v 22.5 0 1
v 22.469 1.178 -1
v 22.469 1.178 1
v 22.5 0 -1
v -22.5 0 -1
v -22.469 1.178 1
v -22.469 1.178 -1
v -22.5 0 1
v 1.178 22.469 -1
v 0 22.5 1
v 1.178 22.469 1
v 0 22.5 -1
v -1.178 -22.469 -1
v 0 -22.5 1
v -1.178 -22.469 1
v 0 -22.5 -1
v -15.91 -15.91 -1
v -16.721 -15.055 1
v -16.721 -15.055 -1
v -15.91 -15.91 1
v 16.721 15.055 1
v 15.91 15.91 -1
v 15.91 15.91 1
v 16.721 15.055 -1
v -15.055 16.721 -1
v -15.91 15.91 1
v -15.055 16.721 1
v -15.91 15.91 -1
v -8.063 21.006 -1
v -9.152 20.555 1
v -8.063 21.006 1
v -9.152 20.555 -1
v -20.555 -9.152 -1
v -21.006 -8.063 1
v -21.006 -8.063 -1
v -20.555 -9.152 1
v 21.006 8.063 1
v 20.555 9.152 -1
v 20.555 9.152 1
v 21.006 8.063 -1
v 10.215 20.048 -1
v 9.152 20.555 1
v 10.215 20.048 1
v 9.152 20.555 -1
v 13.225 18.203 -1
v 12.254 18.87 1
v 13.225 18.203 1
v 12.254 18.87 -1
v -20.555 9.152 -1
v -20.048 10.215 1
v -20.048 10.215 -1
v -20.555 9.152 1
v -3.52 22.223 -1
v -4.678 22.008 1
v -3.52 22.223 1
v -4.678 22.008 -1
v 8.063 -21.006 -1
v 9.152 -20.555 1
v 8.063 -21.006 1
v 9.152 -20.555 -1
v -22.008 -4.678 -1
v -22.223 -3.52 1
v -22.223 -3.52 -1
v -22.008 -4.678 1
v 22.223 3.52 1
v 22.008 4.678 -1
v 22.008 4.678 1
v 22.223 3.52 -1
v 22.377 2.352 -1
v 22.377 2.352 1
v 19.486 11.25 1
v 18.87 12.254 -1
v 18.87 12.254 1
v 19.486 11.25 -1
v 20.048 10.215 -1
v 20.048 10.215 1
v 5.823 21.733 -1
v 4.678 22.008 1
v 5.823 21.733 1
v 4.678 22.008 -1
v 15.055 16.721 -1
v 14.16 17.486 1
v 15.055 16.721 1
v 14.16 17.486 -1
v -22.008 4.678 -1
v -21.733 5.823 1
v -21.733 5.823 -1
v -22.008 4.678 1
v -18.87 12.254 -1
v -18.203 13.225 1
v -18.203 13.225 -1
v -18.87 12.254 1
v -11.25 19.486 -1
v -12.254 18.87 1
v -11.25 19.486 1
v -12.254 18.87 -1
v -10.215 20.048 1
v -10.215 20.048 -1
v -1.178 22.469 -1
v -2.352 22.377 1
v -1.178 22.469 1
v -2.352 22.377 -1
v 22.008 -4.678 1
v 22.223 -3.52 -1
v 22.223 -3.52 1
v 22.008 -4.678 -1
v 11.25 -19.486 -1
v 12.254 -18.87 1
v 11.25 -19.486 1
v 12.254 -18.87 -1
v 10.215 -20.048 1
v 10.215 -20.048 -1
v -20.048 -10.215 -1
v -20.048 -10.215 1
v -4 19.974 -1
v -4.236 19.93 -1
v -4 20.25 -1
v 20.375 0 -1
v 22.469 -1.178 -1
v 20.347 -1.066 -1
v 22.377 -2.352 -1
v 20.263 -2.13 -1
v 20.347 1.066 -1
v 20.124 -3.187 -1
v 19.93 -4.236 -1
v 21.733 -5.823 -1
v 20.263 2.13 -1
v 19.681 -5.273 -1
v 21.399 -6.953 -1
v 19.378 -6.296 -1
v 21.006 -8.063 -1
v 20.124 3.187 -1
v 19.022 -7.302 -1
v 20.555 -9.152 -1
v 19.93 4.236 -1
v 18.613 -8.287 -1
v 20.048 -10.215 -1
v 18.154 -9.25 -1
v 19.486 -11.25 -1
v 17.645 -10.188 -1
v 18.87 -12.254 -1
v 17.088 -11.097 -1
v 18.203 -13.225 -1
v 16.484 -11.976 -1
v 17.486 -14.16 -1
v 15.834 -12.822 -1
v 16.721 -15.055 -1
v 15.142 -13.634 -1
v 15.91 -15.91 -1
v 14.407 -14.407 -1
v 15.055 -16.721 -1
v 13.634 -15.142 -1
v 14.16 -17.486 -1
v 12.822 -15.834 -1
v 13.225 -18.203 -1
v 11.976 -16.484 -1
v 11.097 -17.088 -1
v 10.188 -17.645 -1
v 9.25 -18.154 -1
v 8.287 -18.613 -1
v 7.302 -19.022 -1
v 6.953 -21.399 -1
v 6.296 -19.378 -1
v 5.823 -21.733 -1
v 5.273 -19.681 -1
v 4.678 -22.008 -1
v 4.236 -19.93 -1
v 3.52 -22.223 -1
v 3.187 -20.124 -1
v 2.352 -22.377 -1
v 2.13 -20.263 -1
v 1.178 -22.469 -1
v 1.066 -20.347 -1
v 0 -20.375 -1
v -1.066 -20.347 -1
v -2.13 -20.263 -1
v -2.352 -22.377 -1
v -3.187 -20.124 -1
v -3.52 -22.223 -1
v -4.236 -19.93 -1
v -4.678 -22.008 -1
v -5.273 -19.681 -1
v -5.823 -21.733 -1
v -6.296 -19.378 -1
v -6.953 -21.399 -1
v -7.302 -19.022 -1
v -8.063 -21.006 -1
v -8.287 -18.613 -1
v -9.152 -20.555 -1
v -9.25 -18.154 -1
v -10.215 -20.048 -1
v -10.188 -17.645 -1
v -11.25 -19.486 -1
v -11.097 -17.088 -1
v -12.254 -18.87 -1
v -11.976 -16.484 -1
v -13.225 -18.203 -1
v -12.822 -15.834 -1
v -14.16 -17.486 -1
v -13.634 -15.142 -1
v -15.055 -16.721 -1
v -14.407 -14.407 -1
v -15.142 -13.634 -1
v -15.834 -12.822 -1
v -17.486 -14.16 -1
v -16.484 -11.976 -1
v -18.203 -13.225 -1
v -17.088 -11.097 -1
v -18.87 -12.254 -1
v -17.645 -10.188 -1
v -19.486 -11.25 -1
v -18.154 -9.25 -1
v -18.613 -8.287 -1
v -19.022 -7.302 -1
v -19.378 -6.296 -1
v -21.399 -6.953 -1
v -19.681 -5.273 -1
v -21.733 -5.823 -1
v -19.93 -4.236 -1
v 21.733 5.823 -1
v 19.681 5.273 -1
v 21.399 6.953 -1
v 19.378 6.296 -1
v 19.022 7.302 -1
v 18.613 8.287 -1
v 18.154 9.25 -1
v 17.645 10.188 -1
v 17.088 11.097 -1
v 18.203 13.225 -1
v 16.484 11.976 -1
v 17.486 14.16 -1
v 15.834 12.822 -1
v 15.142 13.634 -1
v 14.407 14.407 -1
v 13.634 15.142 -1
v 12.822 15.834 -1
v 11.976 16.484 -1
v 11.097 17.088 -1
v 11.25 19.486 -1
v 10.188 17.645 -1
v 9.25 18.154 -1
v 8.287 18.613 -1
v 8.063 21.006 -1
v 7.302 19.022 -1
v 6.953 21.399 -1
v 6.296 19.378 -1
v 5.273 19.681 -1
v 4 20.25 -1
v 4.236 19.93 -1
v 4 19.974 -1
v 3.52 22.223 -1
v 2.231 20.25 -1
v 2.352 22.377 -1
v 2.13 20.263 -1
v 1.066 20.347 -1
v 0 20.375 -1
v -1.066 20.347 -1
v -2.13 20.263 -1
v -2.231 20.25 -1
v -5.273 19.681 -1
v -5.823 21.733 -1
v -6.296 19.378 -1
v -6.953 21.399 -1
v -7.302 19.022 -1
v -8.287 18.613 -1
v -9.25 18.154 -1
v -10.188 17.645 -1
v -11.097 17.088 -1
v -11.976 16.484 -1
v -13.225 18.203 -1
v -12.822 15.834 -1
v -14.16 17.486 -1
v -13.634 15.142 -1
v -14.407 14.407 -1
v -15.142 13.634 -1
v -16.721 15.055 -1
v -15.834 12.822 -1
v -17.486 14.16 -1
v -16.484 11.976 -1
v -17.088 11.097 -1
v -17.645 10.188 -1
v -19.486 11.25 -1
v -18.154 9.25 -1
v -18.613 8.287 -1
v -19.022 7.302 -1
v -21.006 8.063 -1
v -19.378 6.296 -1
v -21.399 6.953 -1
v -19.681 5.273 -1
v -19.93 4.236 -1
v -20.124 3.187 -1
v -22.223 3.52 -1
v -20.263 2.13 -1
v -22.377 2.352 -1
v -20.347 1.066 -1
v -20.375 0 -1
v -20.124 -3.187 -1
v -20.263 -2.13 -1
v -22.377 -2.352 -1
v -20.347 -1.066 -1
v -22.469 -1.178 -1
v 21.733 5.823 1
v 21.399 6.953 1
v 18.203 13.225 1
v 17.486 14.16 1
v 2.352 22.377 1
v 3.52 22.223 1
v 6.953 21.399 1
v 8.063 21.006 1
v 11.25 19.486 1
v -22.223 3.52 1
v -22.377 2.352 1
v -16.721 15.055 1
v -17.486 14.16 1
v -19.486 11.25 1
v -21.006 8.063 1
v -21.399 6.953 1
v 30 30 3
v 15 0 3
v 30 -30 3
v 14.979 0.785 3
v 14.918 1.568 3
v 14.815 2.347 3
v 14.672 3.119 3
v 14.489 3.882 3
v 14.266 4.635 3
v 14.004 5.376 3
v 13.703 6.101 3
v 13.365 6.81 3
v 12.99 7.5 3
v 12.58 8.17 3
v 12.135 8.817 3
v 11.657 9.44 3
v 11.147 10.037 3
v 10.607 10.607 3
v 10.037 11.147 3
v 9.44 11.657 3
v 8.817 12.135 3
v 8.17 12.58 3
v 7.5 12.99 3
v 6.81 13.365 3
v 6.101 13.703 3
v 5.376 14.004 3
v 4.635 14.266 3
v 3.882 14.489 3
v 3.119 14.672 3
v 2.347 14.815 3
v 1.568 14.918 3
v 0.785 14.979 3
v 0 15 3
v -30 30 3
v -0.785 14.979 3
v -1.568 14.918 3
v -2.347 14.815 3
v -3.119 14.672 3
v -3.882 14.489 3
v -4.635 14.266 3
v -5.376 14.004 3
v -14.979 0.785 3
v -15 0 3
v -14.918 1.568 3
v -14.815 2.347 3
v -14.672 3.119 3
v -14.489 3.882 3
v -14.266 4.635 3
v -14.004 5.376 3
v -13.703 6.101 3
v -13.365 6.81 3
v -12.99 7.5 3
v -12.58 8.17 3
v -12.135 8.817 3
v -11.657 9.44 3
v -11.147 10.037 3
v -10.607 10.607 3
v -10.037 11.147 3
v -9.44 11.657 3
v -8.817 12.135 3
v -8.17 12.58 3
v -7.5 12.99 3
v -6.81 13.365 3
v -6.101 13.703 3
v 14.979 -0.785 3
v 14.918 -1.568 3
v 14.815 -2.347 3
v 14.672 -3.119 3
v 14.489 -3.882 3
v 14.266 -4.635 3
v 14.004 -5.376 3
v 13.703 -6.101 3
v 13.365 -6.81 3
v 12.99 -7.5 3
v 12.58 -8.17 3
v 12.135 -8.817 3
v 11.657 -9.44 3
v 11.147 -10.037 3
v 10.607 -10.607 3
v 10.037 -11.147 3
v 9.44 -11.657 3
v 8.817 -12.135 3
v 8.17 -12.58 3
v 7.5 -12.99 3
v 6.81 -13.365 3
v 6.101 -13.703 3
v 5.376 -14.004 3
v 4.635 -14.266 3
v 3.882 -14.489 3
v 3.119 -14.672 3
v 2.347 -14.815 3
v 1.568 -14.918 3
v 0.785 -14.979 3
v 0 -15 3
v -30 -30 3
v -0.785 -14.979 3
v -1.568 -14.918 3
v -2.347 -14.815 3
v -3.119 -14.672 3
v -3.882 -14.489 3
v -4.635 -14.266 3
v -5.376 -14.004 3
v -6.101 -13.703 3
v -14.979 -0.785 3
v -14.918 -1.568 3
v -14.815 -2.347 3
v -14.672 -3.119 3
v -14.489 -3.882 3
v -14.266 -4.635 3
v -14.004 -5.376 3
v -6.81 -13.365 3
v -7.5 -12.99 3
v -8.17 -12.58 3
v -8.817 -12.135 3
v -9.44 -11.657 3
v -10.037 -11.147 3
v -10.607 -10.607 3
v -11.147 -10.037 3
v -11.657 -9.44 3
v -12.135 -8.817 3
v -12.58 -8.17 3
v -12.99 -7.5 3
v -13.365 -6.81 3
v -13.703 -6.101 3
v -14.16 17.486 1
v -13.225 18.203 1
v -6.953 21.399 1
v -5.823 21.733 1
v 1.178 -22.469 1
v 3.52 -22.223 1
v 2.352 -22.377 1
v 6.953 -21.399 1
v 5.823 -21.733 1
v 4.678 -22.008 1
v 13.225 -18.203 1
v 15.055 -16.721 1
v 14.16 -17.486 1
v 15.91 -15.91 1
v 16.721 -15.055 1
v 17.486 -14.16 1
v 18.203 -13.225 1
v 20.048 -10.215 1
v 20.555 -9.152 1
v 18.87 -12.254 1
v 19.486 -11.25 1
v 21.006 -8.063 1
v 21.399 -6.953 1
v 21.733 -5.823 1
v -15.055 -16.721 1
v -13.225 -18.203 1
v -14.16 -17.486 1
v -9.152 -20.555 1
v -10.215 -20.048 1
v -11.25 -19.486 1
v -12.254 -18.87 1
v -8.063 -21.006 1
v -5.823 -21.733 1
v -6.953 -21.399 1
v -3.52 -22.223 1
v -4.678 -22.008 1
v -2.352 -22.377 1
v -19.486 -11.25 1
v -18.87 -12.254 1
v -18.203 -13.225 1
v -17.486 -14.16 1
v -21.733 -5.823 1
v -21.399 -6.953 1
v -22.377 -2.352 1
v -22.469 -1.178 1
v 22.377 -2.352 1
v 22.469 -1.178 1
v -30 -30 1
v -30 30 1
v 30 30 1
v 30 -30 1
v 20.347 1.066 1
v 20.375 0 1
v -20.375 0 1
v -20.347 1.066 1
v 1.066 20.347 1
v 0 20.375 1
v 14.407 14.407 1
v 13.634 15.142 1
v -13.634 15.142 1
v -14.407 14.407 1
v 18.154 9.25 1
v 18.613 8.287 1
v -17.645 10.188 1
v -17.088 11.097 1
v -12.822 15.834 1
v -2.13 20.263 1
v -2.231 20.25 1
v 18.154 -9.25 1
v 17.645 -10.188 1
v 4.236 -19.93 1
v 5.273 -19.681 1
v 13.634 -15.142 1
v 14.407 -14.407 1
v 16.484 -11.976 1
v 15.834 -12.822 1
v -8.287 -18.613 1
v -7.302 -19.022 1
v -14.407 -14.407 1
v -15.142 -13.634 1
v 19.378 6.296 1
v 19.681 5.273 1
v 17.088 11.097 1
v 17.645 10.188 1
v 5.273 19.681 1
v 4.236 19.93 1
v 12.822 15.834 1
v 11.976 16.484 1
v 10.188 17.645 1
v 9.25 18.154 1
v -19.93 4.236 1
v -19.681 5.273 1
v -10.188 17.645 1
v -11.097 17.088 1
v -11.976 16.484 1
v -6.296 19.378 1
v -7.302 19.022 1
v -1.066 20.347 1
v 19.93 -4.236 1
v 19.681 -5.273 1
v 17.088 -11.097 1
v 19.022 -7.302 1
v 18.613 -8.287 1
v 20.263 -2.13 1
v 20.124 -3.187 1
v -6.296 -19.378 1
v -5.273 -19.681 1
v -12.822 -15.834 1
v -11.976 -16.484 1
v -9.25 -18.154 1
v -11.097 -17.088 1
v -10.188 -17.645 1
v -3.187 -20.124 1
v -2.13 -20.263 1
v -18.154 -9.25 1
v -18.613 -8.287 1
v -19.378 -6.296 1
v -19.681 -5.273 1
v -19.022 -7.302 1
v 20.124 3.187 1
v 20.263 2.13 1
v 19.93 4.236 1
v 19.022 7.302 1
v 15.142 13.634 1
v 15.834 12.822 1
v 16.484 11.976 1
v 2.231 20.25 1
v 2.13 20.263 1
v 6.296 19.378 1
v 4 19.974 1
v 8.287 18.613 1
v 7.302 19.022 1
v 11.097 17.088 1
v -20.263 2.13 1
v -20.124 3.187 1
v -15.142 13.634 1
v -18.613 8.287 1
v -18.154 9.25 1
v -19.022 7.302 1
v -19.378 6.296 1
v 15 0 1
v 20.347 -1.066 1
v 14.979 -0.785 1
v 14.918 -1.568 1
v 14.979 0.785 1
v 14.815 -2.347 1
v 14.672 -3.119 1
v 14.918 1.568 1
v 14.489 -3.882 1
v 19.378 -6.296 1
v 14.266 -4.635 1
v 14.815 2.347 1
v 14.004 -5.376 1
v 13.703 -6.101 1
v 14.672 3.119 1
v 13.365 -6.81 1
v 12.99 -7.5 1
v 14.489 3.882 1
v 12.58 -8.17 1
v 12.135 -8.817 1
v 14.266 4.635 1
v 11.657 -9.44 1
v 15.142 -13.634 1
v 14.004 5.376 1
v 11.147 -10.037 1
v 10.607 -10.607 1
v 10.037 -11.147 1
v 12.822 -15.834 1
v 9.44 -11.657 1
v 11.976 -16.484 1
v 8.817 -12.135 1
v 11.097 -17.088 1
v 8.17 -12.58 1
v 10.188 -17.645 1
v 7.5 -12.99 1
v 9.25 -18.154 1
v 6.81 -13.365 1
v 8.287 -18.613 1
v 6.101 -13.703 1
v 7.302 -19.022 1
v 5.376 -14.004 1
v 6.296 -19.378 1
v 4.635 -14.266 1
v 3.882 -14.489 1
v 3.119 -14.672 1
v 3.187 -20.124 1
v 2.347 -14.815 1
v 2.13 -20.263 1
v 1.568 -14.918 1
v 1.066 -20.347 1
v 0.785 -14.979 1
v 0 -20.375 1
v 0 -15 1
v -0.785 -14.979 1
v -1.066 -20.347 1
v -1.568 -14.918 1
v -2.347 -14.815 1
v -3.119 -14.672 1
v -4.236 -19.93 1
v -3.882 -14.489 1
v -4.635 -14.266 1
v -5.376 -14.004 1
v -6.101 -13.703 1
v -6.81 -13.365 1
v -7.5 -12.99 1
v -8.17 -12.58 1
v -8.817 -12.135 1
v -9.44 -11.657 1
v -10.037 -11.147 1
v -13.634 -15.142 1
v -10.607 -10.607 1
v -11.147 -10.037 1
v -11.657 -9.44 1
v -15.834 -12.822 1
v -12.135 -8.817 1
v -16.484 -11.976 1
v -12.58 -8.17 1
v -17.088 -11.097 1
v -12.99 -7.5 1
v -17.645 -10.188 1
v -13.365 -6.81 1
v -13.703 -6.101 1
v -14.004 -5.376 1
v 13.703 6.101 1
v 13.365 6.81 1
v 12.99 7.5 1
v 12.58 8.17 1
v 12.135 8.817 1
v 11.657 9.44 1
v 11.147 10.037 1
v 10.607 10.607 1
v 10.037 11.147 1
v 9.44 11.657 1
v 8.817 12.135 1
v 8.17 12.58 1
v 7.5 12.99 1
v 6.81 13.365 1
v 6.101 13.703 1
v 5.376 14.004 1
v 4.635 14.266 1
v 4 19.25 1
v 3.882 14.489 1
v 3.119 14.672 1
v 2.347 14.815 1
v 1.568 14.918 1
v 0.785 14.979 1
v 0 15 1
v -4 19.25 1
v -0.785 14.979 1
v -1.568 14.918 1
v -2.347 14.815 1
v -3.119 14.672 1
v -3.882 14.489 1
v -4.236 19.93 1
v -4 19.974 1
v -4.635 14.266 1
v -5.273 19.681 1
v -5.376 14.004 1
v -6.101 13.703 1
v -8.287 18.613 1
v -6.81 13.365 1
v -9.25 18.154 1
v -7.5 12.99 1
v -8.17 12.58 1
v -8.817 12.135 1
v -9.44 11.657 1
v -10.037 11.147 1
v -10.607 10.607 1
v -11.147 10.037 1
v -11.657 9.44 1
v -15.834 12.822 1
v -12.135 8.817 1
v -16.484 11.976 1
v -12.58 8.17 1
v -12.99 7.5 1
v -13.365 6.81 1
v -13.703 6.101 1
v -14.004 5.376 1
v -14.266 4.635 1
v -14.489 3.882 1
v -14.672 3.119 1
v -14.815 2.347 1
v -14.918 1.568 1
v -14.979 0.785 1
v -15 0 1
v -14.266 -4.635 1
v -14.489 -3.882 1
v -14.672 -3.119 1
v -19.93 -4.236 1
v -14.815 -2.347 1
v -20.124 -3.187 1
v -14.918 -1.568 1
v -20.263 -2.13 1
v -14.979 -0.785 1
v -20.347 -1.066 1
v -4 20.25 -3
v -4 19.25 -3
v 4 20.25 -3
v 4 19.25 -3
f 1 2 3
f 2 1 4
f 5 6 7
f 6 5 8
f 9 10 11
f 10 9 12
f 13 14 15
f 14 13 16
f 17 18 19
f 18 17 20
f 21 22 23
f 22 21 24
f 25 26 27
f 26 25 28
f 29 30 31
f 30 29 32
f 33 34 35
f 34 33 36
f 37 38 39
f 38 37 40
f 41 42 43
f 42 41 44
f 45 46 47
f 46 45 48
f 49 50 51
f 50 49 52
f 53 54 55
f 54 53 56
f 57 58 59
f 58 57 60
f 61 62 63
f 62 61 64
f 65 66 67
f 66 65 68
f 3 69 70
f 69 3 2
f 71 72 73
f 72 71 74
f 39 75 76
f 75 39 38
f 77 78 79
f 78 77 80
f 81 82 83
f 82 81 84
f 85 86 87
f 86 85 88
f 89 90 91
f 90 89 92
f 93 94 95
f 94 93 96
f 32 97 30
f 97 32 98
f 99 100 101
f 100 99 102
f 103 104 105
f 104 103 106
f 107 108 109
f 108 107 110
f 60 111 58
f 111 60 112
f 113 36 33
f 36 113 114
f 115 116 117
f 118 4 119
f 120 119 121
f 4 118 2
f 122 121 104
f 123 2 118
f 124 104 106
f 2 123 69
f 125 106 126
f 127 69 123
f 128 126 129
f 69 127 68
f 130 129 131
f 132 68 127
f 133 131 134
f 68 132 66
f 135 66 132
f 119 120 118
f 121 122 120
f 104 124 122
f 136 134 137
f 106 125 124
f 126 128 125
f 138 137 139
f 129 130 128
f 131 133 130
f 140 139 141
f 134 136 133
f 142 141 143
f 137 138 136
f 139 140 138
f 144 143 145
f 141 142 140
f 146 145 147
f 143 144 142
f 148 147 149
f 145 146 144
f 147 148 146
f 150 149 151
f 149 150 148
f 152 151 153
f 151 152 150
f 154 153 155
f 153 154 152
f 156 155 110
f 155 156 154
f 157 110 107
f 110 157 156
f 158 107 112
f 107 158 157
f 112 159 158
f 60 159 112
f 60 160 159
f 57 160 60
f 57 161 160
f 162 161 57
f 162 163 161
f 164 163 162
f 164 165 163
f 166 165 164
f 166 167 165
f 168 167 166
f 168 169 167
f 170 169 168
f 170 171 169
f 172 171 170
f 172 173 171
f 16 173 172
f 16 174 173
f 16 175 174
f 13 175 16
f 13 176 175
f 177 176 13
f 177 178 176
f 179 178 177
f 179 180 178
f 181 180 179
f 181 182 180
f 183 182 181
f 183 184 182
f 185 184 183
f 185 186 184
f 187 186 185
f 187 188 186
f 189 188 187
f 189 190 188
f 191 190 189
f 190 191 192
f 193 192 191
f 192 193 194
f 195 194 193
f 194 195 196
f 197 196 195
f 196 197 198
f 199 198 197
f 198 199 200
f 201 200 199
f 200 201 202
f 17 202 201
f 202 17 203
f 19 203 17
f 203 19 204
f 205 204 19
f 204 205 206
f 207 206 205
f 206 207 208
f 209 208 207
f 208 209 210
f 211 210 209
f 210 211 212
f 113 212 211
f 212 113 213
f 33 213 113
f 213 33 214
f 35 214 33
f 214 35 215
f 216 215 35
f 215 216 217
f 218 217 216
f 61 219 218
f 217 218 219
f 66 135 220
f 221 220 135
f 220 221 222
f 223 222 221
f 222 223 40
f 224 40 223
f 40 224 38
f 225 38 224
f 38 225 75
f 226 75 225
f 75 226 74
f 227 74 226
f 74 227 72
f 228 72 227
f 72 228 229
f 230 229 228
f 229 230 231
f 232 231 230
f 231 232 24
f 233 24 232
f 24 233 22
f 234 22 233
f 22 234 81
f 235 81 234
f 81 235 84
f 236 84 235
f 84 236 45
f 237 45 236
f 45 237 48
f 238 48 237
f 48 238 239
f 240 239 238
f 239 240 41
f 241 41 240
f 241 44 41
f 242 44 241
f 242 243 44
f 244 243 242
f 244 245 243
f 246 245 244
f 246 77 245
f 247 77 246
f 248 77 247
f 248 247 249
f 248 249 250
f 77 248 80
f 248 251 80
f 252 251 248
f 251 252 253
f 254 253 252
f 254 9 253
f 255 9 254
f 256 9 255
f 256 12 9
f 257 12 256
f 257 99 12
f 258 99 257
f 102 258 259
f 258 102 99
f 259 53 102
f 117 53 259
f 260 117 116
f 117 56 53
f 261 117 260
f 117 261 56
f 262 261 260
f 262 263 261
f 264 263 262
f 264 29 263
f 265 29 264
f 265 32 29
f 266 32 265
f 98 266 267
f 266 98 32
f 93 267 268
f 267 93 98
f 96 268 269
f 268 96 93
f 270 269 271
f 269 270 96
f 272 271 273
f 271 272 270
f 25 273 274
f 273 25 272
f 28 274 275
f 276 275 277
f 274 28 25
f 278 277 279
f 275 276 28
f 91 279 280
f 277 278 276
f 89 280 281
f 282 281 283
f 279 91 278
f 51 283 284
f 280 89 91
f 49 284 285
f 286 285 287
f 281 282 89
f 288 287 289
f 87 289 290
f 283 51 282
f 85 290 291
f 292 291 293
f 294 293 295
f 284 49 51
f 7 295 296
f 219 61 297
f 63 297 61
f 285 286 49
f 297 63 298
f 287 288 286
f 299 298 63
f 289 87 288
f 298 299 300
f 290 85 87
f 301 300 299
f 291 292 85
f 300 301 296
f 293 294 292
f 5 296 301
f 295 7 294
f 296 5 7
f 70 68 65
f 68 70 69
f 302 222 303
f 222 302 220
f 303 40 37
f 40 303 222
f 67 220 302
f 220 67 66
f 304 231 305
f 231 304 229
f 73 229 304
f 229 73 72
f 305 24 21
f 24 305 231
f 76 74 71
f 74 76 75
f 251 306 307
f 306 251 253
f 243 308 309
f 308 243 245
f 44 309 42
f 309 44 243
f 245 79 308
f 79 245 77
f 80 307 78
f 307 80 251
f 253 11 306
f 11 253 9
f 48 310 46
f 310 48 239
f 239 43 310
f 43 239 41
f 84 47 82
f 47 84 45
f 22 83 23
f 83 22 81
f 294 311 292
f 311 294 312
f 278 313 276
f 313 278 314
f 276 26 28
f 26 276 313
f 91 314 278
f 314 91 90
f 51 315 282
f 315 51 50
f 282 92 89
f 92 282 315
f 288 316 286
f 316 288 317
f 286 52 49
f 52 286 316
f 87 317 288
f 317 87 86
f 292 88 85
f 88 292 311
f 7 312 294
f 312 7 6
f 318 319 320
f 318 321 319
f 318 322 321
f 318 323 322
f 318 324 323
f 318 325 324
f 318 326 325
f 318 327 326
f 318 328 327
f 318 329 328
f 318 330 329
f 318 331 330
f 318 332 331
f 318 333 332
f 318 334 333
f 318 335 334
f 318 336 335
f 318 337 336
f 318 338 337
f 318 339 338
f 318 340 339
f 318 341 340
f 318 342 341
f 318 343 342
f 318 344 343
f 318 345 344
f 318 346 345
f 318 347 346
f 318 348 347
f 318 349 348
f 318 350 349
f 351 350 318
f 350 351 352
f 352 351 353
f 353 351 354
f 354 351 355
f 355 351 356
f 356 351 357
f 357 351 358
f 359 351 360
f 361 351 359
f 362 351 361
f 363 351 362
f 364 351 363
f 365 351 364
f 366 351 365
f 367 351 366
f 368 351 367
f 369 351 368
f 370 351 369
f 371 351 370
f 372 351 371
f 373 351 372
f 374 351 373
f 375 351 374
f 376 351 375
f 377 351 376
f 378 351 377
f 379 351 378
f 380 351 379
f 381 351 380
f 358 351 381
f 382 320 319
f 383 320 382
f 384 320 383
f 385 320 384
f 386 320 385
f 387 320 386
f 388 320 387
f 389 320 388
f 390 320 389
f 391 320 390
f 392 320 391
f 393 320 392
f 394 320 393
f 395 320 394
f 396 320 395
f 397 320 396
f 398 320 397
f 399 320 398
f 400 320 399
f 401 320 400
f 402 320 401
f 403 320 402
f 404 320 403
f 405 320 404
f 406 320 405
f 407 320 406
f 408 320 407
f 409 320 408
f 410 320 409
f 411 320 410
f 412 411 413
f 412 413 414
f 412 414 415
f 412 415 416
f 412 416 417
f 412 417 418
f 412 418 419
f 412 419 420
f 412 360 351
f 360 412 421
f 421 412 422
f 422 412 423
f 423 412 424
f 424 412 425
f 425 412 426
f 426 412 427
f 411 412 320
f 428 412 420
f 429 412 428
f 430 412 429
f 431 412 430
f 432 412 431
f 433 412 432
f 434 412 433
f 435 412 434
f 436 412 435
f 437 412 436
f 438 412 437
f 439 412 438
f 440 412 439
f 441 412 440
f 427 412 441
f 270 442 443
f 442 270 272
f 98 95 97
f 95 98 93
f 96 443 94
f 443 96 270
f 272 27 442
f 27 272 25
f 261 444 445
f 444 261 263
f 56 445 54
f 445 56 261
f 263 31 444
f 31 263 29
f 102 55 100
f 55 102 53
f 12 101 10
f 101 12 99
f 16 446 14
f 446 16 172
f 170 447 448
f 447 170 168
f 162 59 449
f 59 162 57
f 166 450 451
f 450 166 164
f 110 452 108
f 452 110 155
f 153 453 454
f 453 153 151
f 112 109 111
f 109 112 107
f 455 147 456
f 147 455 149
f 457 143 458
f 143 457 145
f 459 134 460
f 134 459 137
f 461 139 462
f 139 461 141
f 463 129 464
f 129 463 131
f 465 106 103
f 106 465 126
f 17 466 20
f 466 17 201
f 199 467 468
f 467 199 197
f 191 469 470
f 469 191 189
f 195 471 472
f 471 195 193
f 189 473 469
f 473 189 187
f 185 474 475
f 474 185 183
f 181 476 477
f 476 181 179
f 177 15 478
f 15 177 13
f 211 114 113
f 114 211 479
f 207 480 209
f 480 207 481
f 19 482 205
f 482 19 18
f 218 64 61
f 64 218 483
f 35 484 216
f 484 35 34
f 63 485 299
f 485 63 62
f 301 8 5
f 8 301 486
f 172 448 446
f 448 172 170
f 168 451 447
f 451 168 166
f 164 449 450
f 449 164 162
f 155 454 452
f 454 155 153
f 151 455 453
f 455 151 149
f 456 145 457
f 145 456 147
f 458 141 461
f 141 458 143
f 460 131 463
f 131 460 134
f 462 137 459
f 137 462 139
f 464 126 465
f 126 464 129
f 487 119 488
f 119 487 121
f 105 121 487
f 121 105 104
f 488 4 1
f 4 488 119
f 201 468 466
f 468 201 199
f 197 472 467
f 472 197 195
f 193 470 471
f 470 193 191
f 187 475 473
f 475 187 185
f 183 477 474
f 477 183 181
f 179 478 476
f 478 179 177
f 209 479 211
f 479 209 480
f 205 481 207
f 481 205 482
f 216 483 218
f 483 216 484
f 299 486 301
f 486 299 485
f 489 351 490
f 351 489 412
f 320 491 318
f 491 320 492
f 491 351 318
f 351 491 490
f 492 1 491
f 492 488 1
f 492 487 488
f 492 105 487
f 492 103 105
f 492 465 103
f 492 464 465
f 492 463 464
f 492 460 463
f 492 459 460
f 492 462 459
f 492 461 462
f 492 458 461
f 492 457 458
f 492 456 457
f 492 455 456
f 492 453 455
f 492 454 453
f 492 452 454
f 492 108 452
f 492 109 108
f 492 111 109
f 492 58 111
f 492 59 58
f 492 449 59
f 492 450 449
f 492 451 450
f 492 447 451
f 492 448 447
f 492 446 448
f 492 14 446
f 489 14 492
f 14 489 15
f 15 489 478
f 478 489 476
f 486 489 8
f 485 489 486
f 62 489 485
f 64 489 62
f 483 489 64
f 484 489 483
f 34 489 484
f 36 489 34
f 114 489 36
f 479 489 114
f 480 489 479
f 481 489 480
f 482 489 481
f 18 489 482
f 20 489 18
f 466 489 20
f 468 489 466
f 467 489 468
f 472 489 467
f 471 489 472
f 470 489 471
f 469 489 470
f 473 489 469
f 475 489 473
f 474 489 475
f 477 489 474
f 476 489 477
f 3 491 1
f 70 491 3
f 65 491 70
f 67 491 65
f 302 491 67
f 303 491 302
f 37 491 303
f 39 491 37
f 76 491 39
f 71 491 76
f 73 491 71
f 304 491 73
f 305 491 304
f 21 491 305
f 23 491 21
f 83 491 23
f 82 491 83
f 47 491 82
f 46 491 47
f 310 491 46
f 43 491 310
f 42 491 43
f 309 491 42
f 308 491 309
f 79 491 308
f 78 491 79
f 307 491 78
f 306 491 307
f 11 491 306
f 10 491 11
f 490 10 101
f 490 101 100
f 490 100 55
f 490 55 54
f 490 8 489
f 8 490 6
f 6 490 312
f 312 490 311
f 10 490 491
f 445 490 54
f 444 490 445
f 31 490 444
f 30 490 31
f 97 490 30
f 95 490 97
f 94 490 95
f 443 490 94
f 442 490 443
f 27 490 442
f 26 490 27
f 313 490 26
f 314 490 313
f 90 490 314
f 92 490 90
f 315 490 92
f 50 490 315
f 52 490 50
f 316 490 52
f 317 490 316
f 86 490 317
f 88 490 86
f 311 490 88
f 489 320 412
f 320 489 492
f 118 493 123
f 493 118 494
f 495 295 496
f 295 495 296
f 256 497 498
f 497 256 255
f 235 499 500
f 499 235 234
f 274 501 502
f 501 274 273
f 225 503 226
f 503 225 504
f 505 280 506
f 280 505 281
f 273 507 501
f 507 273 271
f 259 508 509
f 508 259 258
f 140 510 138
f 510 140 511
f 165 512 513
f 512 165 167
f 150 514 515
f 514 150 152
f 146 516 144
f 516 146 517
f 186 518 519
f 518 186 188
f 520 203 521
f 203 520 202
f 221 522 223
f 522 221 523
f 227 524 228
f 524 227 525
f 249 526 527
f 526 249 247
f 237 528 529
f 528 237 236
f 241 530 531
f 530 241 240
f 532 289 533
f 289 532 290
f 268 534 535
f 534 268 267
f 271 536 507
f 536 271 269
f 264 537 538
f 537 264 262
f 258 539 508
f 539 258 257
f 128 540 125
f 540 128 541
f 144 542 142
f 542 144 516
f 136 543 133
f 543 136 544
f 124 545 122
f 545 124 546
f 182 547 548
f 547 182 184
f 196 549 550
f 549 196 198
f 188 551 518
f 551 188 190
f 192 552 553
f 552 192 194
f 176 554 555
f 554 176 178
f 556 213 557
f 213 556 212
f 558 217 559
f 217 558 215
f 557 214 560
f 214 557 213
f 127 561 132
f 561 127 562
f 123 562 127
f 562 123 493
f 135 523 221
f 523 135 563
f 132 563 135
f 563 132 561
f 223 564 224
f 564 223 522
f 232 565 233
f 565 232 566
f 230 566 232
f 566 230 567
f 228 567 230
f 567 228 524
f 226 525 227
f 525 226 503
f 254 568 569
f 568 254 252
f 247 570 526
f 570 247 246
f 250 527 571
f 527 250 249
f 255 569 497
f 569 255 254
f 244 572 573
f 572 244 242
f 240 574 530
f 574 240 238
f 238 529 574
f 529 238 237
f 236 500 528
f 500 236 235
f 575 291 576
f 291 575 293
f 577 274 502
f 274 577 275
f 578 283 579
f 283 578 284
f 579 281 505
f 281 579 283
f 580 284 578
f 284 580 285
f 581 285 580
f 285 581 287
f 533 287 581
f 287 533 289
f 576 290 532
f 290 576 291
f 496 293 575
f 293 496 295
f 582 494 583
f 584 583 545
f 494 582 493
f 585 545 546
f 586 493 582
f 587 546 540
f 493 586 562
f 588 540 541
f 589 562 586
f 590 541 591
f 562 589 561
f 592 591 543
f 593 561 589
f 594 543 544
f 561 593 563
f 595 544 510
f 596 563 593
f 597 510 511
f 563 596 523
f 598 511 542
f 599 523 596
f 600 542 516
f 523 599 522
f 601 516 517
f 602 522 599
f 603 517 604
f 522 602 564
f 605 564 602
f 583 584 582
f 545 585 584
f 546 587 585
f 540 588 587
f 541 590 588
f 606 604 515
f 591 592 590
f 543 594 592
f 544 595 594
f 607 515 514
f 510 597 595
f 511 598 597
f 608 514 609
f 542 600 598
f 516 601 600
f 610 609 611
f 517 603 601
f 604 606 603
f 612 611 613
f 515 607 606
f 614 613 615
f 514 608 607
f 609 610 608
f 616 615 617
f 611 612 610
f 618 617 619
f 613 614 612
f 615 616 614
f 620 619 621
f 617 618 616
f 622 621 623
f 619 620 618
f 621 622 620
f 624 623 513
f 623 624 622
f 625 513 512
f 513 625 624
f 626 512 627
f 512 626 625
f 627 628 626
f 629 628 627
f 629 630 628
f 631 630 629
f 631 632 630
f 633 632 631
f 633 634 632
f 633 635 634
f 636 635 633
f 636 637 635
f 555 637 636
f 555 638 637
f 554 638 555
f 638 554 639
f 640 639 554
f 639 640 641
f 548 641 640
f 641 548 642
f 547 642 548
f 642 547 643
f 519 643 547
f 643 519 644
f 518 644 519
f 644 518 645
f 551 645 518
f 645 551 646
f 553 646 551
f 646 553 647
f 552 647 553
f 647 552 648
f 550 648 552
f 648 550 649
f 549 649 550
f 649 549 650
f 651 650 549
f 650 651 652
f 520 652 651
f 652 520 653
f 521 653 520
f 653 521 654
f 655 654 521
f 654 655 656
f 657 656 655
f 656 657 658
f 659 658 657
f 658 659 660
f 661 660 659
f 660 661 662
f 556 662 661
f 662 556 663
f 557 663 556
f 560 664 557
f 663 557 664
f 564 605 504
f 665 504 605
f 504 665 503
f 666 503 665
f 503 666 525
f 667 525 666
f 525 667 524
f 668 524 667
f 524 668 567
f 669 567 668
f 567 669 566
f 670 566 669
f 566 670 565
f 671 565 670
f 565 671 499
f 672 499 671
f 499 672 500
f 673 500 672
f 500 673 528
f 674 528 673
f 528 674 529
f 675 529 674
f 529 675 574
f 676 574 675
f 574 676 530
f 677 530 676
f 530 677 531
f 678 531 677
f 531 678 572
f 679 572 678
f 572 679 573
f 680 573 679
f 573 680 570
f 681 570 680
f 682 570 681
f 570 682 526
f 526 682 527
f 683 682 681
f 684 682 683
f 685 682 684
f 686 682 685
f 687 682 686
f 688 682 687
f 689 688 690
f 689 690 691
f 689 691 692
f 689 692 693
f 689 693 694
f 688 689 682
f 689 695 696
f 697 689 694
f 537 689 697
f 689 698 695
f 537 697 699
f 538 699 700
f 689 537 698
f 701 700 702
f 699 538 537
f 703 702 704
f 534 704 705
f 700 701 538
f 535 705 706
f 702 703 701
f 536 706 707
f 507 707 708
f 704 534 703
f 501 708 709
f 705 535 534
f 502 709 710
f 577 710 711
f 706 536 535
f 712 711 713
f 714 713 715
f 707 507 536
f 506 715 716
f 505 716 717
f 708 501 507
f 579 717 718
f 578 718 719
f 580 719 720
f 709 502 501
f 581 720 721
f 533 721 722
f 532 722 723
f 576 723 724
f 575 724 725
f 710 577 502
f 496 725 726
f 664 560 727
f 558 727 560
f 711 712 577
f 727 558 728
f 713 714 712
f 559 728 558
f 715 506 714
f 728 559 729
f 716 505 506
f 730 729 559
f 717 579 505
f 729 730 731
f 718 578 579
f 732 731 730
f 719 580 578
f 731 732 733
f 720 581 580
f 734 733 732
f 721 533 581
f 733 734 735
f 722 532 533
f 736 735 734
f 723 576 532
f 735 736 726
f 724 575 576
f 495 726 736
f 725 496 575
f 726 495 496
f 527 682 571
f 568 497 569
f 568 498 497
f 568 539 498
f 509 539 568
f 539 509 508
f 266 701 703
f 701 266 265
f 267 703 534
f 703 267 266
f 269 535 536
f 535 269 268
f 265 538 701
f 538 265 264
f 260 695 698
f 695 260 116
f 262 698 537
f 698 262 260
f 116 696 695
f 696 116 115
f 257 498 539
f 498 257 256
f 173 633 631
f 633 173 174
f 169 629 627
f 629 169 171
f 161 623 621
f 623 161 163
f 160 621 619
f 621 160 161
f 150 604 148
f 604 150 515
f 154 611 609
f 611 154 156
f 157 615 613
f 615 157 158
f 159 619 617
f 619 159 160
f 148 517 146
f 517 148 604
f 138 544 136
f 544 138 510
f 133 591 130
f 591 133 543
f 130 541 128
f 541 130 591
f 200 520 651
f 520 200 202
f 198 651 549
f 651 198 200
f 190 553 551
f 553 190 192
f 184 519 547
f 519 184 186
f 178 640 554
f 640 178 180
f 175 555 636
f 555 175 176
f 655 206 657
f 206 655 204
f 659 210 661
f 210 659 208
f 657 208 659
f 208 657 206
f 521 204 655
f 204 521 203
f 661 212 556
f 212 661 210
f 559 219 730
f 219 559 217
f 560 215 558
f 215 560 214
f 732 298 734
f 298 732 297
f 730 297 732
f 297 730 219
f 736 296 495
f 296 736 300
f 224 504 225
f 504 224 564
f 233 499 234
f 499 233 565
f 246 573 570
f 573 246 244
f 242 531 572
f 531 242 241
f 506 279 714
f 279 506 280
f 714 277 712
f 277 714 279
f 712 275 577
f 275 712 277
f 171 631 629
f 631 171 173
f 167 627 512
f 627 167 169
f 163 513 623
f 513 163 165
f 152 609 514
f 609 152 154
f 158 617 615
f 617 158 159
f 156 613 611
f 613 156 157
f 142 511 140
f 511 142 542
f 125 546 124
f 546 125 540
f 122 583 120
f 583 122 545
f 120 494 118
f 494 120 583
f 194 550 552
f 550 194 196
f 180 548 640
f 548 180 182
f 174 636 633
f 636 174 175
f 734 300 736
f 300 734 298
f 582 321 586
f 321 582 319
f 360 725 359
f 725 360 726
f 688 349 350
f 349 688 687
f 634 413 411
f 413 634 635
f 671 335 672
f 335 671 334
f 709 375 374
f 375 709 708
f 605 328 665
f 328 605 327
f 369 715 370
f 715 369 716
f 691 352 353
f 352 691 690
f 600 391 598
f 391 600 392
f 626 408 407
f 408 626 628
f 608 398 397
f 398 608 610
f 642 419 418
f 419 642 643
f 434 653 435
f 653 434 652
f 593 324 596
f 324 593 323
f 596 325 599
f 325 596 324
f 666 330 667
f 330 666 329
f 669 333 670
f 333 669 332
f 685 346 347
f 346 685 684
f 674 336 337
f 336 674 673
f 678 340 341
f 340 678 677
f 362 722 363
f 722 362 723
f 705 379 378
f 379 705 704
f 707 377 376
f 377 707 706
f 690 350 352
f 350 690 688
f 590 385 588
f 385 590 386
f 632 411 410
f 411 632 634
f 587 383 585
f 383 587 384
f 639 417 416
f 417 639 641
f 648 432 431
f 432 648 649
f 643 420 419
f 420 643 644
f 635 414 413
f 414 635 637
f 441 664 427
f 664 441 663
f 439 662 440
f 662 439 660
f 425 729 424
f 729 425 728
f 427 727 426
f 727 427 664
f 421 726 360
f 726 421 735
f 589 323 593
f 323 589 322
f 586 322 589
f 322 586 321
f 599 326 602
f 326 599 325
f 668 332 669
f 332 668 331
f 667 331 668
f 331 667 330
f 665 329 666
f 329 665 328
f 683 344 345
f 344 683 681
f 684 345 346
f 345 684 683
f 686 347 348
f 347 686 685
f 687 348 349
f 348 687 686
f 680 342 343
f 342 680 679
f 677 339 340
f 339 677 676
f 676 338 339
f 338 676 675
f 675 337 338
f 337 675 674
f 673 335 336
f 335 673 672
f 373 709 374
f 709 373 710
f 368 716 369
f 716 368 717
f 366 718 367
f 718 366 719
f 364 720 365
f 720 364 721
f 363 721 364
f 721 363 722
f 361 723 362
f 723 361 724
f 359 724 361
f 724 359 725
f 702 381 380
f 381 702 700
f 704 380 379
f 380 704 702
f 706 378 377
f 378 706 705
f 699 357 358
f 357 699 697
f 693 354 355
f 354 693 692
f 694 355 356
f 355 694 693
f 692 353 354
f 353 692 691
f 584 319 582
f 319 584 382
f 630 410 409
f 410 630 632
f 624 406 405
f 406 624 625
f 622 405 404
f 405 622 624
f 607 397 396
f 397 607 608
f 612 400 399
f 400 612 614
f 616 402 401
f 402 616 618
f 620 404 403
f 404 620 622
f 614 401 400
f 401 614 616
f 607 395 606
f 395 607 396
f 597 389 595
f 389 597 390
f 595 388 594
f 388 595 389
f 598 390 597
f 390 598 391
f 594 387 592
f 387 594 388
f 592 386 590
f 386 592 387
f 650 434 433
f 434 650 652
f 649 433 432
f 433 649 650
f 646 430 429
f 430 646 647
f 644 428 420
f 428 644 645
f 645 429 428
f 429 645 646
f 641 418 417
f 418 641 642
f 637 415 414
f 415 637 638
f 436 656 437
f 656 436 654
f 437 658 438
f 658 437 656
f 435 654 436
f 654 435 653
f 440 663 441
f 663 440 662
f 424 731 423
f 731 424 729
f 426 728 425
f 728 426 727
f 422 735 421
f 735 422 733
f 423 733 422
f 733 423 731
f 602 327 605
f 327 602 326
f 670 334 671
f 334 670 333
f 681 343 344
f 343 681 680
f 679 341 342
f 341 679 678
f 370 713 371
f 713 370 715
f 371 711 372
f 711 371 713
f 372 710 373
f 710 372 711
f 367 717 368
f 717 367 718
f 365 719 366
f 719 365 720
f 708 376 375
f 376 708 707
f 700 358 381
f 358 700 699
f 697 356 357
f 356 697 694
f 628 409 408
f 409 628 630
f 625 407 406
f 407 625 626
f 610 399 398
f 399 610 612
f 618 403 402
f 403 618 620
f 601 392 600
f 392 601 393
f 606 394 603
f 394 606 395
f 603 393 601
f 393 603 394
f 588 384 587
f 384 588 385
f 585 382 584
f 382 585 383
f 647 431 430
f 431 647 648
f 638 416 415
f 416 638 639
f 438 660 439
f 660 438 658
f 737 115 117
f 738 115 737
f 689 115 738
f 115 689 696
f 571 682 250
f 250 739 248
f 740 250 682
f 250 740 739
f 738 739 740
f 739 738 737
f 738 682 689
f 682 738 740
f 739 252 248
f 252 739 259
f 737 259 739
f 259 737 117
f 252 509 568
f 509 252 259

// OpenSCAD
include <BOSL/constants.scad>
use <BOSL/shapes.scad>
use <BOSL/transforms.scad>
use <BOSL/masks.scad>

//Slider_Disc
fileVersion = "1A";
  
$fn=120; //circle smoothness

union() {  
  difference(){
    union() {
     color("lime") down(1) cylinder(h=4, d=45); //disc object
    color("pink") forward(0) up(2) cuboid([60, 60, 2]); //bench mount

    }
     color("aqua") down(2) cylinder(h=3, d=40.75); //trackpoint disc
     color("orange") cylinder(h=10, d=30); //finger cutout
  }//difference

  color("blue") down(1) back(19.75) cuboid([8, 1, 4]); // trackpoint alignment 

}
